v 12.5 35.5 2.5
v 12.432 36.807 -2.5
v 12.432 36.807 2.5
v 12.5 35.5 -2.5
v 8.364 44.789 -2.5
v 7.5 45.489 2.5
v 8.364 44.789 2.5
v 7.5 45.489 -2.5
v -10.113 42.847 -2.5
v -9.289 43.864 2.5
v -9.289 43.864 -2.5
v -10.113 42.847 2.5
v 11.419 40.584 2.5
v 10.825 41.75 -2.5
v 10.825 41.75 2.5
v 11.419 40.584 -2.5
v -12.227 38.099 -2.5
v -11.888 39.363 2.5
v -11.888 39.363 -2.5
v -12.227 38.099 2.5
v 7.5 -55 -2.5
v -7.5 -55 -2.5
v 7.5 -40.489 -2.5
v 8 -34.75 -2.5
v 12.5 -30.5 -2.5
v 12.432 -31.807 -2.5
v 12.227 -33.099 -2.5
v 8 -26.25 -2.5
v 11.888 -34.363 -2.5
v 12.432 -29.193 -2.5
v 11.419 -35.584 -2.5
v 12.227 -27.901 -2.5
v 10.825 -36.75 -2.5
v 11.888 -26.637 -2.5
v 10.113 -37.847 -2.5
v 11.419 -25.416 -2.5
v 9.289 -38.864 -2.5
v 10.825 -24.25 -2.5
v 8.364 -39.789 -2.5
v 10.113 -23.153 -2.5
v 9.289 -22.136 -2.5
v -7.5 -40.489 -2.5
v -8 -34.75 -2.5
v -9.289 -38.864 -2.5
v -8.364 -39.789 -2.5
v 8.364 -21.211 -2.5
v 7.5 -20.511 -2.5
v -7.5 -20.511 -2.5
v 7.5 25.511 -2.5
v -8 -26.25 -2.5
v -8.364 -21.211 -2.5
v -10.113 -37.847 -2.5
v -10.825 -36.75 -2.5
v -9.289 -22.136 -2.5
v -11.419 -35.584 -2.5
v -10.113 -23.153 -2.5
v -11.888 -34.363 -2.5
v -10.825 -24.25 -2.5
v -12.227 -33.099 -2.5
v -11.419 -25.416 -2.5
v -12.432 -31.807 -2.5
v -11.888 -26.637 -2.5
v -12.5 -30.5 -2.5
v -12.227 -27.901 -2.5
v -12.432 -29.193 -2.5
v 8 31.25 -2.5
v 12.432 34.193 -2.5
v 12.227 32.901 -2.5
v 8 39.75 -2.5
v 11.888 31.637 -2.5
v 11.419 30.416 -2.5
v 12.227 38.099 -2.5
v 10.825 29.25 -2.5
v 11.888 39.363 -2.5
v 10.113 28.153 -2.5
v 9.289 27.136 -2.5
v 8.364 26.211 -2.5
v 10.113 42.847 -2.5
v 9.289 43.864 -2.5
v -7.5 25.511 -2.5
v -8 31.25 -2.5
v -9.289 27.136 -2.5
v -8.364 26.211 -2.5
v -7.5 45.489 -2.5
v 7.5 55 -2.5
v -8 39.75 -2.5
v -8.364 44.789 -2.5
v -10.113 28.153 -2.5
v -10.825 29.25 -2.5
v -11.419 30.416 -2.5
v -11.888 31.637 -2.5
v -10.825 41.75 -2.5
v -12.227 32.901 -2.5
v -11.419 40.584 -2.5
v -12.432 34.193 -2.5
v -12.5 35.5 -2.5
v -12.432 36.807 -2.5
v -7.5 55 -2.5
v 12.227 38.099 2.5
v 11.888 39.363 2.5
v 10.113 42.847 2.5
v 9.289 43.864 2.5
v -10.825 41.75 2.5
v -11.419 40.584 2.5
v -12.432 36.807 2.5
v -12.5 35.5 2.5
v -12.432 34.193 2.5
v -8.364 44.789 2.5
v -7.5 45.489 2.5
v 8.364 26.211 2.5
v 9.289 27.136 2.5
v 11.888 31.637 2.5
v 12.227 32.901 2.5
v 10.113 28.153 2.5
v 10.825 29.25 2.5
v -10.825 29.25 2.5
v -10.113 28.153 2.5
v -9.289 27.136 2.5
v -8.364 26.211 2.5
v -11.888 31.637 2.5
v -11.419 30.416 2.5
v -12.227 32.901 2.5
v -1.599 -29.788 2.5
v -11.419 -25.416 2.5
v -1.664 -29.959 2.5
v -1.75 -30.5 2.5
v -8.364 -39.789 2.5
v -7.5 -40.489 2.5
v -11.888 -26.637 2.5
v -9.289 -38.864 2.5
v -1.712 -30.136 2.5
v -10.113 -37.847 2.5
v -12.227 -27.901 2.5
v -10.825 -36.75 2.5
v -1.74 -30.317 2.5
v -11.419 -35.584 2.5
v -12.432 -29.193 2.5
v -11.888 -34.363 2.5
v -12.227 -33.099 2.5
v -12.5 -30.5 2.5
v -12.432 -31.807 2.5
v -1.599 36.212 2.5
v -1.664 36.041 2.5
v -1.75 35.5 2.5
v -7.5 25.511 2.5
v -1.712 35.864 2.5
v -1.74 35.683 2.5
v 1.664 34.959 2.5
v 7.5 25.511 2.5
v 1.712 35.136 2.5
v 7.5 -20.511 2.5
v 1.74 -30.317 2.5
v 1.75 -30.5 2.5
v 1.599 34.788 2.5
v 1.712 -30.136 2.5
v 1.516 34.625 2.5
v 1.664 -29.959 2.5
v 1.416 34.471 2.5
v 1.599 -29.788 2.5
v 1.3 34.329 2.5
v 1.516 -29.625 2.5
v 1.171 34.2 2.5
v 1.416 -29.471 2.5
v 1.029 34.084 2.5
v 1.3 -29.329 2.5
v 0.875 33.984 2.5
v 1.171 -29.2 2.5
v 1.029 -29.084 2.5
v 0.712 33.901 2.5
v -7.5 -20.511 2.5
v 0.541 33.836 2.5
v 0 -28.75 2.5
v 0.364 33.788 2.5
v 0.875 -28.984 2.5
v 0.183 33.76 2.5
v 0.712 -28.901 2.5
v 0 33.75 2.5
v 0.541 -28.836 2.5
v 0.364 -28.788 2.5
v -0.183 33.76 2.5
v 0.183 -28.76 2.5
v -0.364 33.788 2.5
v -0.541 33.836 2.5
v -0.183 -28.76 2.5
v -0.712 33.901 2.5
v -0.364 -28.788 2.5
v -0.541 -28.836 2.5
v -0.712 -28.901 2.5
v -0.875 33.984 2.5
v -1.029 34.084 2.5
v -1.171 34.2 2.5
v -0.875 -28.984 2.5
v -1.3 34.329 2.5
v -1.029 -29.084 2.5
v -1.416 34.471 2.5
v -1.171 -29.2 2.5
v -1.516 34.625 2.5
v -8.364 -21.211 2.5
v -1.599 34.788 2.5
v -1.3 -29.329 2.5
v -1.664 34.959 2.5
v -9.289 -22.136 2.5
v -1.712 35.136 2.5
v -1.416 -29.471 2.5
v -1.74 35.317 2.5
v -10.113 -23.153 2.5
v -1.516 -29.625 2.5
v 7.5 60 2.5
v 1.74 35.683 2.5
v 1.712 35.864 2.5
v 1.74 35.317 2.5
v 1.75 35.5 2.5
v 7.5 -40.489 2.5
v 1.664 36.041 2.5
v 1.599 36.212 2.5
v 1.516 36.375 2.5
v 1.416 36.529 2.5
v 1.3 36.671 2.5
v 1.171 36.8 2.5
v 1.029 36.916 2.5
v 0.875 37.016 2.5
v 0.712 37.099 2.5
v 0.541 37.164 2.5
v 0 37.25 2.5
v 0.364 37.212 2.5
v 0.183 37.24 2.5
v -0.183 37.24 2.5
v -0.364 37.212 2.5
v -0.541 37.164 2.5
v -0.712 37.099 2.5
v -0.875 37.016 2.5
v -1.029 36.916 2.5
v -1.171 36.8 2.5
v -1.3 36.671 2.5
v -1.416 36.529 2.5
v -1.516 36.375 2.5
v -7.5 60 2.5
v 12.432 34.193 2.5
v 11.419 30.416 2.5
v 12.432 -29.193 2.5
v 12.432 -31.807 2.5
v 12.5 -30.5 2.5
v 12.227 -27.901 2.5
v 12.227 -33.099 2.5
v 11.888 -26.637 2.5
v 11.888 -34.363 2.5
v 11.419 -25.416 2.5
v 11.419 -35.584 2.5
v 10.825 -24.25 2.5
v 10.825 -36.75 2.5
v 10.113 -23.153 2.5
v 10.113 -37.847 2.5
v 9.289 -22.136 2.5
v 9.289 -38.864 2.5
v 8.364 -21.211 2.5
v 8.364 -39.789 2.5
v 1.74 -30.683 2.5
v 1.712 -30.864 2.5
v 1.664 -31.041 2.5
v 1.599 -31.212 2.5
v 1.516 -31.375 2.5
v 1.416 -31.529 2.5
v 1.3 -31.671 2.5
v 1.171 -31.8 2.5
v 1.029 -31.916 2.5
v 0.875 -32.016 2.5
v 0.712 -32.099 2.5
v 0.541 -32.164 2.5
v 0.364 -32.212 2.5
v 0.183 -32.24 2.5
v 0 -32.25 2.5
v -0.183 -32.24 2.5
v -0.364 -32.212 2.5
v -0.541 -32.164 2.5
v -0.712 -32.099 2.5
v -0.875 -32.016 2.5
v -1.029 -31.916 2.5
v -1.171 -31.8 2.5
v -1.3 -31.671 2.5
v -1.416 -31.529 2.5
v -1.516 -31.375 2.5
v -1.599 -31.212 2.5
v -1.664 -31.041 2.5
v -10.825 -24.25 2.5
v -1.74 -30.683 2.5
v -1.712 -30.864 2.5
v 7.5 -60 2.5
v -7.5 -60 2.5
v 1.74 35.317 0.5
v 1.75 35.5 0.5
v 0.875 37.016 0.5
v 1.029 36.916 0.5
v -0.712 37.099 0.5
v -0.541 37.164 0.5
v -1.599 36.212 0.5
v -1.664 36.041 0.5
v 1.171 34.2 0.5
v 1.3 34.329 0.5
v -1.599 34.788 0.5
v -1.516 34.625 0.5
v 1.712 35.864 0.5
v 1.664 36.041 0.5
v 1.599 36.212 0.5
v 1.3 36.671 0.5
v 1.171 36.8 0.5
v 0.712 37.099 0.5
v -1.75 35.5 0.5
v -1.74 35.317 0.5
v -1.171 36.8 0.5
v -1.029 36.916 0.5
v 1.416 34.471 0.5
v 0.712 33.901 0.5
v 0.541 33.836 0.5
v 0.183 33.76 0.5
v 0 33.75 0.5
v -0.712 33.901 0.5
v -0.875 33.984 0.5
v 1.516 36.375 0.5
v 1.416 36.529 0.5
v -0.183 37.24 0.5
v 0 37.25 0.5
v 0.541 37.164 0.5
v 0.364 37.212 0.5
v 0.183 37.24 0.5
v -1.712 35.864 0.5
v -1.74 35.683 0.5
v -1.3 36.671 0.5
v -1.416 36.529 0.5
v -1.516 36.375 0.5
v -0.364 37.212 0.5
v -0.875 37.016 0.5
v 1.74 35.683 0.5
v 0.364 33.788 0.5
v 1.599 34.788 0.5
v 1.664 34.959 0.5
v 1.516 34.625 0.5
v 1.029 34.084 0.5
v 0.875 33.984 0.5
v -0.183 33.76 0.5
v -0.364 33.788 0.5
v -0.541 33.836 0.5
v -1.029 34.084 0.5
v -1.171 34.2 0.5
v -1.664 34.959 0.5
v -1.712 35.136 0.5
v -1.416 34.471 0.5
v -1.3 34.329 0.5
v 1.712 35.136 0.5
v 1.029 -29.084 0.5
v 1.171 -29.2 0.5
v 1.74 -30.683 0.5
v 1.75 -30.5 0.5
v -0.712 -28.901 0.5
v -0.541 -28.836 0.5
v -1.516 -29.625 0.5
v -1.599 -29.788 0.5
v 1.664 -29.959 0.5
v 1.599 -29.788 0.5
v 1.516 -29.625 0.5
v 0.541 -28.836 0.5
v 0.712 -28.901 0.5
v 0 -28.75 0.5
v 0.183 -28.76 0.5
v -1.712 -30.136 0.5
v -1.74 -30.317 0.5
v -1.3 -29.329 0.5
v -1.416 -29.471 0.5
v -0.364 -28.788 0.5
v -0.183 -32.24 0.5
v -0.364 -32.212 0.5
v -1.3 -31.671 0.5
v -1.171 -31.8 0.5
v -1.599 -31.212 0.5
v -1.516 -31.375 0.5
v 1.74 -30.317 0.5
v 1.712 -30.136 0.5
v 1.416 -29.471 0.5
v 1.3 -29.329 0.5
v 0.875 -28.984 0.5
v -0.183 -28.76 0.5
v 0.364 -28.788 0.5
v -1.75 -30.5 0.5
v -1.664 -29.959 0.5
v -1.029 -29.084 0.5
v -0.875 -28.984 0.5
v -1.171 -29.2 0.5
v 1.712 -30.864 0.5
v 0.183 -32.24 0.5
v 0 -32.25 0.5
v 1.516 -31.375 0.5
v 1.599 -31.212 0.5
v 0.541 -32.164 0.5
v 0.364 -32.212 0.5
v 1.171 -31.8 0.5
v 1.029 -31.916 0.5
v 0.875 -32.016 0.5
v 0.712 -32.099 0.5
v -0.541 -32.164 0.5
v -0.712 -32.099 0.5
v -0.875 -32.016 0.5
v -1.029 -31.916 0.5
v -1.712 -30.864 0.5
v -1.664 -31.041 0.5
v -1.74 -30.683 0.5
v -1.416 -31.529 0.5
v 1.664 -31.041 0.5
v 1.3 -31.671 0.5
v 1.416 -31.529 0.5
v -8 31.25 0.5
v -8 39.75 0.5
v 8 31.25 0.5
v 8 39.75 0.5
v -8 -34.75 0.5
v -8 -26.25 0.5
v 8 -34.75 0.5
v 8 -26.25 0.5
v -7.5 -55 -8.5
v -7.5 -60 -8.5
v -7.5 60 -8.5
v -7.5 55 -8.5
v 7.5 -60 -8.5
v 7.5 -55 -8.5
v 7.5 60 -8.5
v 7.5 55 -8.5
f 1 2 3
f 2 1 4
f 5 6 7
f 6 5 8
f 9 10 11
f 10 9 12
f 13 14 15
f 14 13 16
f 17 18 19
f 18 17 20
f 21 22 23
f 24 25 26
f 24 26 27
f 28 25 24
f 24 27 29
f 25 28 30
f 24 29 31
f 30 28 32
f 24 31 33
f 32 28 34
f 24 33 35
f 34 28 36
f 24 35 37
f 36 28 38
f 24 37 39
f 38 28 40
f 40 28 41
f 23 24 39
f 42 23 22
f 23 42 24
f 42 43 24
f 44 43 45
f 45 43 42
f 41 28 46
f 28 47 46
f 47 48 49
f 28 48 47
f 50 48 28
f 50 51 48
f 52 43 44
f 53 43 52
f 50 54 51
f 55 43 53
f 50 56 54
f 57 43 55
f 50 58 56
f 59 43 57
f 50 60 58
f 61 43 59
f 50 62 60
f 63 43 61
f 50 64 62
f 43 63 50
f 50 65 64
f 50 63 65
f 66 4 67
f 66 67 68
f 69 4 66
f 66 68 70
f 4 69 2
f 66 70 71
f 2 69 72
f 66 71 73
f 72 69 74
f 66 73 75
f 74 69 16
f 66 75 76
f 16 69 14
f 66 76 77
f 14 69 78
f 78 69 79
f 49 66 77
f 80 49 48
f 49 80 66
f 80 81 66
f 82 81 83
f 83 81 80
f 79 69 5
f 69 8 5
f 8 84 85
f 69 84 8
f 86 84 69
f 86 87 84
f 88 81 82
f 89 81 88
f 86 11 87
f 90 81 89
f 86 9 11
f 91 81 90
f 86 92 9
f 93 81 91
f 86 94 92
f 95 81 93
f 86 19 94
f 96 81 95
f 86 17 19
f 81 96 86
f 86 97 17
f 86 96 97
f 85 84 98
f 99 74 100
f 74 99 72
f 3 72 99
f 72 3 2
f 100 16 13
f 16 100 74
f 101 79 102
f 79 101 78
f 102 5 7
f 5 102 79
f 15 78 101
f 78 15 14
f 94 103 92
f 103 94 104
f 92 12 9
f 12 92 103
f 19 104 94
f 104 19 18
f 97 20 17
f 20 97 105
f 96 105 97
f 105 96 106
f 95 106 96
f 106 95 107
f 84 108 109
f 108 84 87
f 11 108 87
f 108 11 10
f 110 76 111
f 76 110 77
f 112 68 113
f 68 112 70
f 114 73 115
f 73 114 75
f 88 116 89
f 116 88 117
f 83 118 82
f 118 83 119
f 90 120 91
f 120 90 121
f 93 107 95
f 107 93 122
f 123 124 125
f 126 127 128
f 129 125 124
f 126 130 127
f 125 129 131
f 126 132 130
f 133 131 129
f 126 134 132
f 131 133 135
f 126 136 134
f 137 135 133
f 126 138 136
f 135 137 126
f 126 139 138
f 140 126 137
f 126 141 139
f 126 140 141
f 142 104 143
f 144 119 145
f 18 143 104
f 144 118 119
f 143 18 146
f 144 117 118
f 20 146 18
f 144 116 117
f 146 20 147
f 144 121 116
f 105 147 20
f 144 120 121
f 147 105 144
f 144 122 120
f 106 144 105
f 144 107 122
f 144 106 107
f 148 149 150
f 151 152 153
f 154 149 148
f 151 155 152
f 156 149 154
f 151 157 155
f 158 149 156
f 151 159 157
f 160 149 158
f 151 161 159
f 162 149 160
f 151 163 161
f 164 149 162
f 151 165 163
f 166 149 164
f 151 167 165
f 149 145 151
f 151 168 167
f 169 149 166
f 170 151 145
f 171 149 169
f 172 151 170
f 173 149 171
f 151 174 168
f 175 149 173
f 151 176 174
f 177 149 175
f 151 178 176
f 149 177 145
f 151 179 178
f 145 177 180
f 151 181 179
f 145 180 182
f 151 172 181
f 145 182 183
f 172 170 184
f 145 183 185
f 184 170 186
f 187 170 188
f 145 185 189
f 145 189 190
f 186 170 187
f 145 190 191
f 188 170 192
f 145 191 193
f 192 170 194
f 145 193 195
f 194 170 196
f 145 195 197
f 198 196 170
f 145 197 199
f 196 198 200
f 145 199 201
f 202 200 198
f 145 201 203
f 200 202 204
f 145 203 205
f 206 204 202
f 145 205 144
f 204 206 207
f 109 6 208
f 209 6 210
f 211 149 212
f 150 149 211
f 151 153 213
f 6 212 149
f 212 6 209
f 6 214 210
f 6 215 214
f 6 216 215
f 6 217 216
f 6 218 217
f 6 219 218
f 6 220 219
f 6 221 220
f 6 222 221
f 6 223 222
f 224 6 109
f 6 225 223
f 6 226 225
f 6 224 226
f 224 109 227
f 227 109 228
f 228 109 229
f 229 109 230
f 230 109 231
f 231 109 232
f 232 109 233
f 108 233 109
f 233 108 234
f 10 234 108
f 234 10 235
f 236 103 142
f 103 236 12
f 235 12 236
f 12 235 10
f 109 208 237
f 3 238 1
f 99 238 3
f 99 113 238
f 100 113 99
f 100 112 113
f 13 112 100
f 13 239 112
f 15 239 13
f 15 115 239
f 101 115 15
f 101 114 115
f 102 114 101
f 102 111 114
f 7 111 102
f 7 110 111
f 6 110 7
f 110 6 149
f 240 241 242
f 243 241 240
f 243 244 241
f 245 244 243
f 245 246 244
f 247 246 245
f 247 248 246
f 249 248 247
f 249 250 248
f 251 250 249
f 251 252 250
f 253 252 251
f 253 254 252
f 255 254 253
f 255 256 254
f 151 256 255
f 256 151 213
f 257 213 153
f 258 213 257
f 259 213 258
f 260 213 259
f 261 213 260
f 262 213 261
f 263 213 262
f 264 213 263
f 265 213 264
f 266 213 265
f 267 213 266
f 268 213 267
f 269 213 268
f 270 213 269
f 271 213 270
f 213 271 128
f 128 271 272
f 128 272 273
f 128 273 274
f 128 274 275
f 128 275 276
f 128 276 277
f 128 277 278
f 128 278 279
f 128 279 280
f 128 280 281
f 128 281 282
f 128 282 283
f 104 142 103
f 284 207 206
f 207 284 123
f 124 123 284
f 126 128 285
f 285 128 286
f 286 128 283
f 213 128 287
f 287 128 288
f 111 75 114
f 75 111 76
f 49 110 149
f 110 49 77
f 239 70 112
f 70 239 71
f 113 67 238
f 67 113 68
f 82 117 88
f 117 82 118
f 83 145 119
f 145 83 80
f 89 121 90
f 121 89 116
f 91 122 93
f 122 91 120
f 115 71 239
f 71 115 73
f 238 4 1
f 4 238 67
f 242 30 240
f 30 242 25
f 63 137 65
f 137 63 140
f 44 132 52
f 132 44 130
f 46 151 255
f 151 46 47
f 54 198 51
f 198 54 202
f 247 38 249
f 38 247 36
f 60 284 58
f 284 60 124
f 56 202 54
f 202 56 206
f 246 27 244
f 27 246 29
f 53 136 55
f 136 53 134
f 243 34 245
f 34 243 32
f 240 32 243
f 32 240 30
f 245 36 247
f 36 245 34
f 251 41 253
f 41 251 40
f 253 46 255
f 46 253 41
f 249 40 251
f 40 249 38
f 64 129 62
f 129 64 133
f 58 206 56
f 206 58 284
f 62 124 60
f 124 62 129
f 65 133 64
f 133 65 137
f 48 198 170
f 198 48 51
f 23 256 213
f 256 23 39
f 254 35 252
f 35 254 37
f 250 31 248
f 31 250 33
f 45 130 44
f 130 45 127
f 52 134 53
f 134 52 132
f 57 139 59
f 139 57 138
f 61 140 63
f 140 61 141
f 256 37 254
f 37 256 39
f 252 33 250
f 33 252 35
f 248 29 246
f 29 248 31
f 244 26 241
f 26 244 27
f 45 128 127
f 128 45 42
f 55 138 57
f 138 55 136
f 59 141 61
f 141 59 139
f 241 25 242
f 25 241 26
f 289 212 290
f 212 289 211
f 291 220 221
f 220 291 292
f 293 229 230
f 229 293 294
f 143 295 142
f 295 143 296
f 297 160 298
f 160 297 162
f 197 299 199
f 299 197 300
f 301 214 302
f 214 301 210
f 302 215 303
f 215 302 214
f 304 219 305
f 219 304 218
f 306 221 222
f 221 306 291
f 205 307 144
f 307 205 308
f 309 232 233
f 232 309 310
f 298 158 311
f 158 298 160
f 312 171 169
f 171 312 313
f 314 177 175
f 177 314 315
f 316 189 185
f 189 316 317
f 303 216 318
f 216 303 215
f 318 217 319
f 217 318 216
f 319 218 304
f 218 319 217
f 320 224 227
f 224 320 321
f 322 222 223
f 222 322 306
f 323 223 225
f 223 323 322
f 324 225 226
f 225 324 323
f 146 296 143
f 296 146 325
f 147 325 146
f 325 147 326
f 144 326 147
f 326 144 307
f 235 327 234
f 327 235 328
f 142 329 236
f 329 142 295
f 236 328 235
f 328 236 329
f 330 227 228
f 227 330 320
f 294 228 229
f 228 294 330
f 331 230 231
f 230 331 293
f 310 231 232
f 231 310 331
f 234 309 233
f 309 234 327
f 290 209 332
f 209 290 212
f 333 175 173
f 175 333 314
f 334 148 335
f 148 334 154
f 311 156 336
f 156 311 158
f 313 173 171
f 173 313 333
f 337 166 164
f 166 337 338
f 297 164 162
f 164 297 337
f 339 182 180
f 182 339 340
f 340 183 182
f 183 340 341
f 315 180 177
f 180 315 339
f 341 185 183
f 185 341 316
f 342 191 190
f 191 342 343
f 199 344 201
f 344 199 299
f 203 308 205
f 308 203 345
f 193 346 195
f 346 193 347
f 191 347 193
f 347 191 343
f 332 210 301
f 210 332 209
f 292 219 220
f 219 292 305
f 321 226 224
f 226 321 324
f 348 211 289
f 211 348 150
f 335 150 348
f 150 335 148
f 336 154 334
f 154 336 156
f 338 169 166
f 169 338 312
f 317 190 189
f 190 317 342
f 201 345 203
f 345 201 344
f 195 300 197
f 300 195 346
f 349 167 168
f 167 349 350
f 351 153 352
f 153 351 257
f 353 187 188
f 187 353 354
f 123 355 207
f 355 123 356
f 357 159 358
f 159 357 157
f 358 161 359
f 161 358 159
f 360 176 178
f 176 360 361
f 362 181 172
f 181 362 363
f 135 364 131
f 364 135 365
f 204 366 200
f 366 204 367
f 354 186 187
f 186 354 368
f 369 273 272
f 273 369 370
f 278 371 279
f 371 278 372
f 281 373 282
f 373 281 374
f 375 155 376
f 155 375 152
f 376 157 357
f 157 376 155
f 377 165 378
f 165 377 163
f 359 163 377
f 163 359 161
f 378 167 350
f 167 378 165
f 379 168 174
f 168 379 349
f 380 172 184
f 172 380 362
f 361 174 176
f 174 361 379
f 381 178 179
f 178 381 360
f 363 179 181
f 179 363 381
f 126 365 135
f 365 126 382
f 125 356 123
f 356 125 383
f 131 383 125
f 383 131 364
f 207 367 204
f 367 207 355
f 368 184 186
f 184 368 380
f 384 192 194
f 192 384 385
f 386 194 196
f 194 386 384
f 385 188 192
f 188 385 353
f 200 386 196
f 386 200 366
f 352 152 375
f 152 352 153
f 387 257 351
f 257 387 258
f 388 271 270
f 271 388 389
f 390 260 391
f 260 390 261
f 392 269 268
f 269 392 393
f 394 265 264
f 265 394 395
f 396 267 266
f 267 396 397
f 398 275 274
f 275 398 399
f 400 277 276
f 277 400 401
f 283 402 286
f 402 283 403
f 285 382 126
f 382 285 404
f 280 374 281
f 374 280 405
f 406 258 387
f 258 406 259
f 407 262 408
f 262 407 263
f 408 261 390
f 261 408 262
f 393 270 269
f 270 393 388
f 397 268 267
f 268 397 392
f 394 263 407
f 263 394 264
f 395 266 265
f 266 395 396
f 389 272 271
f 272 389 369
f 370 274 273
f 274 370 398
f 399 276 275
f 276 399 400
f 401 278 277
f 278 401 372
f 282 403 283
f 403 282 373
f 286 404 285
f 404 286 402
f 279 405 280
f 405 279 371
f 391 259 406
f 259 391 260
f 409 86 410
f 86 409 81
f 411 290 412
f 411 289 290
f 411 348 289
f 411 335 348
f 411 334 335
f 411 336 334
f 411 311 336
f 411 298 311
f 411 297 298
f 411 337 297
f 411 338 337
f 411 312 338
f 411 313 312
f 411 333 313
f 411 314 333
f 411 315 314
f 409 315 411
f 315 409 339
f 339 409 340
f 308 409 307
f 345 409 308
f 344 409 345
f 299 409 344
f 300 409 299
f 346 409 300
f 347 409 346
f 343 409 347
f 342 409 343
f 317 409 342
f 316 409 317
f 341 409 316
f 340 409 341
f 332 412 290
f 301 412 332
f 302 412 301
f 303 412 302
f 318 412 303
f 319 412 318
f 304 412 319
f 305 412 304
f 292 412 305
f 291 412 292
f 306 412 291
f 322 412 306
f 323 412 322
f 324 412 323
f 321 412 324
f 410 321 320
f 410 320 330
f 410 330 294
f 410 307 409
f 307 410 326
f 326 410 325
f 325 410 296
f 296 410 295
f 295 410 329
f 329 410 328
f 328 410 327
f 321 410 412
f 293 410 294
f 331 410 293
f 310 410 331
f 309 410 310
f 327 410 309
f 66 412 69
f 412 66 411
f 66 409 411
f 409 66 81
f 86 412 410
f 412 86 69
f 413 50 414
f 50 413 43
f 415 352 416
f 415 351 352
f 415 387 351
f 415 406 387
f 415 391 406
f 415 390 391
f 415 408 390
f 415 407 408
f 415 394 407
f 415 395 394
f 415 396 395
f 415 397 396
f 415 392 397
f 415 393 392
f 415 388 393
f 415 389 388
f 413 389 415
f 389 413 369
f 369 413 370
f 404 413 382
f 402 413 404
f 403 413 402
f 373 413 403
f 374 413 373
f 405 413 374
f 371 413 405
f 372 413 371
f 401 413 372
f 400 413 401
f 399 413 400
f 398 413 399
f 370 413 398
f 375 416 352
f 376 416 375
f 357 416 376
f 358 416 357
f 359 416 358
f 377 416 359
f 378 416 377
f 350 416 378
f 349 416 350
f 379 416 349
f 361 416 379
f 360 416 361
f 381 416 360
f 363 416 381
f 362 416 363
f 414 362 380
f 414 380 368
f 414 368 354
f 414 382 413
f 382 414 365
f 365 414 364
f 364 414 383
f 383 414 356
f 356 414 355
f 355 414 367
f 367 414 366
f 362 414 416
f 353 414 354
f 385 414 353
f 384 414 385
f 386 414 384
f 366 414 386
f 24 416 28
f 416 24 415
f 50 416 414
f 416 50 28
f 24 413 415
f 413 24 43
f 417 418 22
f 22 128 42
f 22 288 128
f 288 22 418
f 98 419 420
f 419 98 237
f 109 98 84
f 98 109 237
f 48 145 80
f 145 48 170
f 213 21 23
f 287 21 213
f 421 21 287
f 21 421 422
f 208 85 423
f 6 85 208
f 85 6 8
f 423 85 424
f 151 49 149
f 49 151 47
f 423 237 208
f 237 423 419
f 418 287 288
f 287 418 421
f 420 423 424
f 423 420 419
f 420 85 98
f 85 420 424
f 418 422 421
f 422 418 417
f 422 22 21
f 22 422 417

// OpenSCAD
$fn=60;
difference() {
    union() {
        cube([15,120,5],true);
        translate([0,2.5,0]) {
            translate([0,33,0]) cylinder(d=25,h=5,center=true);
            translate([0,-33,0]) cylinder(d=25,h=5,center=true);
        }
        translate([0,60-2.5,-2-2.5-1]) cube([15,5,4+2],true);
        translate([0,-(60-2.5),-2-2.5-1]) cube([15,5,4+2],true);
    }
    translate([0,2.5,0]) union() {
        translate([0,33,0]) cylinder(d=3.5,h=10,center=true);
        translate([0,-33,0]) cylinder(d=3.5,h=10,center=true);
        translate([0,33,-1.5-2.5+3]) cube([16,8.5,3],true);
        translate([0,-33,-1.5-2.5+3]) cube([16,8.5,3],true);
    }
}
